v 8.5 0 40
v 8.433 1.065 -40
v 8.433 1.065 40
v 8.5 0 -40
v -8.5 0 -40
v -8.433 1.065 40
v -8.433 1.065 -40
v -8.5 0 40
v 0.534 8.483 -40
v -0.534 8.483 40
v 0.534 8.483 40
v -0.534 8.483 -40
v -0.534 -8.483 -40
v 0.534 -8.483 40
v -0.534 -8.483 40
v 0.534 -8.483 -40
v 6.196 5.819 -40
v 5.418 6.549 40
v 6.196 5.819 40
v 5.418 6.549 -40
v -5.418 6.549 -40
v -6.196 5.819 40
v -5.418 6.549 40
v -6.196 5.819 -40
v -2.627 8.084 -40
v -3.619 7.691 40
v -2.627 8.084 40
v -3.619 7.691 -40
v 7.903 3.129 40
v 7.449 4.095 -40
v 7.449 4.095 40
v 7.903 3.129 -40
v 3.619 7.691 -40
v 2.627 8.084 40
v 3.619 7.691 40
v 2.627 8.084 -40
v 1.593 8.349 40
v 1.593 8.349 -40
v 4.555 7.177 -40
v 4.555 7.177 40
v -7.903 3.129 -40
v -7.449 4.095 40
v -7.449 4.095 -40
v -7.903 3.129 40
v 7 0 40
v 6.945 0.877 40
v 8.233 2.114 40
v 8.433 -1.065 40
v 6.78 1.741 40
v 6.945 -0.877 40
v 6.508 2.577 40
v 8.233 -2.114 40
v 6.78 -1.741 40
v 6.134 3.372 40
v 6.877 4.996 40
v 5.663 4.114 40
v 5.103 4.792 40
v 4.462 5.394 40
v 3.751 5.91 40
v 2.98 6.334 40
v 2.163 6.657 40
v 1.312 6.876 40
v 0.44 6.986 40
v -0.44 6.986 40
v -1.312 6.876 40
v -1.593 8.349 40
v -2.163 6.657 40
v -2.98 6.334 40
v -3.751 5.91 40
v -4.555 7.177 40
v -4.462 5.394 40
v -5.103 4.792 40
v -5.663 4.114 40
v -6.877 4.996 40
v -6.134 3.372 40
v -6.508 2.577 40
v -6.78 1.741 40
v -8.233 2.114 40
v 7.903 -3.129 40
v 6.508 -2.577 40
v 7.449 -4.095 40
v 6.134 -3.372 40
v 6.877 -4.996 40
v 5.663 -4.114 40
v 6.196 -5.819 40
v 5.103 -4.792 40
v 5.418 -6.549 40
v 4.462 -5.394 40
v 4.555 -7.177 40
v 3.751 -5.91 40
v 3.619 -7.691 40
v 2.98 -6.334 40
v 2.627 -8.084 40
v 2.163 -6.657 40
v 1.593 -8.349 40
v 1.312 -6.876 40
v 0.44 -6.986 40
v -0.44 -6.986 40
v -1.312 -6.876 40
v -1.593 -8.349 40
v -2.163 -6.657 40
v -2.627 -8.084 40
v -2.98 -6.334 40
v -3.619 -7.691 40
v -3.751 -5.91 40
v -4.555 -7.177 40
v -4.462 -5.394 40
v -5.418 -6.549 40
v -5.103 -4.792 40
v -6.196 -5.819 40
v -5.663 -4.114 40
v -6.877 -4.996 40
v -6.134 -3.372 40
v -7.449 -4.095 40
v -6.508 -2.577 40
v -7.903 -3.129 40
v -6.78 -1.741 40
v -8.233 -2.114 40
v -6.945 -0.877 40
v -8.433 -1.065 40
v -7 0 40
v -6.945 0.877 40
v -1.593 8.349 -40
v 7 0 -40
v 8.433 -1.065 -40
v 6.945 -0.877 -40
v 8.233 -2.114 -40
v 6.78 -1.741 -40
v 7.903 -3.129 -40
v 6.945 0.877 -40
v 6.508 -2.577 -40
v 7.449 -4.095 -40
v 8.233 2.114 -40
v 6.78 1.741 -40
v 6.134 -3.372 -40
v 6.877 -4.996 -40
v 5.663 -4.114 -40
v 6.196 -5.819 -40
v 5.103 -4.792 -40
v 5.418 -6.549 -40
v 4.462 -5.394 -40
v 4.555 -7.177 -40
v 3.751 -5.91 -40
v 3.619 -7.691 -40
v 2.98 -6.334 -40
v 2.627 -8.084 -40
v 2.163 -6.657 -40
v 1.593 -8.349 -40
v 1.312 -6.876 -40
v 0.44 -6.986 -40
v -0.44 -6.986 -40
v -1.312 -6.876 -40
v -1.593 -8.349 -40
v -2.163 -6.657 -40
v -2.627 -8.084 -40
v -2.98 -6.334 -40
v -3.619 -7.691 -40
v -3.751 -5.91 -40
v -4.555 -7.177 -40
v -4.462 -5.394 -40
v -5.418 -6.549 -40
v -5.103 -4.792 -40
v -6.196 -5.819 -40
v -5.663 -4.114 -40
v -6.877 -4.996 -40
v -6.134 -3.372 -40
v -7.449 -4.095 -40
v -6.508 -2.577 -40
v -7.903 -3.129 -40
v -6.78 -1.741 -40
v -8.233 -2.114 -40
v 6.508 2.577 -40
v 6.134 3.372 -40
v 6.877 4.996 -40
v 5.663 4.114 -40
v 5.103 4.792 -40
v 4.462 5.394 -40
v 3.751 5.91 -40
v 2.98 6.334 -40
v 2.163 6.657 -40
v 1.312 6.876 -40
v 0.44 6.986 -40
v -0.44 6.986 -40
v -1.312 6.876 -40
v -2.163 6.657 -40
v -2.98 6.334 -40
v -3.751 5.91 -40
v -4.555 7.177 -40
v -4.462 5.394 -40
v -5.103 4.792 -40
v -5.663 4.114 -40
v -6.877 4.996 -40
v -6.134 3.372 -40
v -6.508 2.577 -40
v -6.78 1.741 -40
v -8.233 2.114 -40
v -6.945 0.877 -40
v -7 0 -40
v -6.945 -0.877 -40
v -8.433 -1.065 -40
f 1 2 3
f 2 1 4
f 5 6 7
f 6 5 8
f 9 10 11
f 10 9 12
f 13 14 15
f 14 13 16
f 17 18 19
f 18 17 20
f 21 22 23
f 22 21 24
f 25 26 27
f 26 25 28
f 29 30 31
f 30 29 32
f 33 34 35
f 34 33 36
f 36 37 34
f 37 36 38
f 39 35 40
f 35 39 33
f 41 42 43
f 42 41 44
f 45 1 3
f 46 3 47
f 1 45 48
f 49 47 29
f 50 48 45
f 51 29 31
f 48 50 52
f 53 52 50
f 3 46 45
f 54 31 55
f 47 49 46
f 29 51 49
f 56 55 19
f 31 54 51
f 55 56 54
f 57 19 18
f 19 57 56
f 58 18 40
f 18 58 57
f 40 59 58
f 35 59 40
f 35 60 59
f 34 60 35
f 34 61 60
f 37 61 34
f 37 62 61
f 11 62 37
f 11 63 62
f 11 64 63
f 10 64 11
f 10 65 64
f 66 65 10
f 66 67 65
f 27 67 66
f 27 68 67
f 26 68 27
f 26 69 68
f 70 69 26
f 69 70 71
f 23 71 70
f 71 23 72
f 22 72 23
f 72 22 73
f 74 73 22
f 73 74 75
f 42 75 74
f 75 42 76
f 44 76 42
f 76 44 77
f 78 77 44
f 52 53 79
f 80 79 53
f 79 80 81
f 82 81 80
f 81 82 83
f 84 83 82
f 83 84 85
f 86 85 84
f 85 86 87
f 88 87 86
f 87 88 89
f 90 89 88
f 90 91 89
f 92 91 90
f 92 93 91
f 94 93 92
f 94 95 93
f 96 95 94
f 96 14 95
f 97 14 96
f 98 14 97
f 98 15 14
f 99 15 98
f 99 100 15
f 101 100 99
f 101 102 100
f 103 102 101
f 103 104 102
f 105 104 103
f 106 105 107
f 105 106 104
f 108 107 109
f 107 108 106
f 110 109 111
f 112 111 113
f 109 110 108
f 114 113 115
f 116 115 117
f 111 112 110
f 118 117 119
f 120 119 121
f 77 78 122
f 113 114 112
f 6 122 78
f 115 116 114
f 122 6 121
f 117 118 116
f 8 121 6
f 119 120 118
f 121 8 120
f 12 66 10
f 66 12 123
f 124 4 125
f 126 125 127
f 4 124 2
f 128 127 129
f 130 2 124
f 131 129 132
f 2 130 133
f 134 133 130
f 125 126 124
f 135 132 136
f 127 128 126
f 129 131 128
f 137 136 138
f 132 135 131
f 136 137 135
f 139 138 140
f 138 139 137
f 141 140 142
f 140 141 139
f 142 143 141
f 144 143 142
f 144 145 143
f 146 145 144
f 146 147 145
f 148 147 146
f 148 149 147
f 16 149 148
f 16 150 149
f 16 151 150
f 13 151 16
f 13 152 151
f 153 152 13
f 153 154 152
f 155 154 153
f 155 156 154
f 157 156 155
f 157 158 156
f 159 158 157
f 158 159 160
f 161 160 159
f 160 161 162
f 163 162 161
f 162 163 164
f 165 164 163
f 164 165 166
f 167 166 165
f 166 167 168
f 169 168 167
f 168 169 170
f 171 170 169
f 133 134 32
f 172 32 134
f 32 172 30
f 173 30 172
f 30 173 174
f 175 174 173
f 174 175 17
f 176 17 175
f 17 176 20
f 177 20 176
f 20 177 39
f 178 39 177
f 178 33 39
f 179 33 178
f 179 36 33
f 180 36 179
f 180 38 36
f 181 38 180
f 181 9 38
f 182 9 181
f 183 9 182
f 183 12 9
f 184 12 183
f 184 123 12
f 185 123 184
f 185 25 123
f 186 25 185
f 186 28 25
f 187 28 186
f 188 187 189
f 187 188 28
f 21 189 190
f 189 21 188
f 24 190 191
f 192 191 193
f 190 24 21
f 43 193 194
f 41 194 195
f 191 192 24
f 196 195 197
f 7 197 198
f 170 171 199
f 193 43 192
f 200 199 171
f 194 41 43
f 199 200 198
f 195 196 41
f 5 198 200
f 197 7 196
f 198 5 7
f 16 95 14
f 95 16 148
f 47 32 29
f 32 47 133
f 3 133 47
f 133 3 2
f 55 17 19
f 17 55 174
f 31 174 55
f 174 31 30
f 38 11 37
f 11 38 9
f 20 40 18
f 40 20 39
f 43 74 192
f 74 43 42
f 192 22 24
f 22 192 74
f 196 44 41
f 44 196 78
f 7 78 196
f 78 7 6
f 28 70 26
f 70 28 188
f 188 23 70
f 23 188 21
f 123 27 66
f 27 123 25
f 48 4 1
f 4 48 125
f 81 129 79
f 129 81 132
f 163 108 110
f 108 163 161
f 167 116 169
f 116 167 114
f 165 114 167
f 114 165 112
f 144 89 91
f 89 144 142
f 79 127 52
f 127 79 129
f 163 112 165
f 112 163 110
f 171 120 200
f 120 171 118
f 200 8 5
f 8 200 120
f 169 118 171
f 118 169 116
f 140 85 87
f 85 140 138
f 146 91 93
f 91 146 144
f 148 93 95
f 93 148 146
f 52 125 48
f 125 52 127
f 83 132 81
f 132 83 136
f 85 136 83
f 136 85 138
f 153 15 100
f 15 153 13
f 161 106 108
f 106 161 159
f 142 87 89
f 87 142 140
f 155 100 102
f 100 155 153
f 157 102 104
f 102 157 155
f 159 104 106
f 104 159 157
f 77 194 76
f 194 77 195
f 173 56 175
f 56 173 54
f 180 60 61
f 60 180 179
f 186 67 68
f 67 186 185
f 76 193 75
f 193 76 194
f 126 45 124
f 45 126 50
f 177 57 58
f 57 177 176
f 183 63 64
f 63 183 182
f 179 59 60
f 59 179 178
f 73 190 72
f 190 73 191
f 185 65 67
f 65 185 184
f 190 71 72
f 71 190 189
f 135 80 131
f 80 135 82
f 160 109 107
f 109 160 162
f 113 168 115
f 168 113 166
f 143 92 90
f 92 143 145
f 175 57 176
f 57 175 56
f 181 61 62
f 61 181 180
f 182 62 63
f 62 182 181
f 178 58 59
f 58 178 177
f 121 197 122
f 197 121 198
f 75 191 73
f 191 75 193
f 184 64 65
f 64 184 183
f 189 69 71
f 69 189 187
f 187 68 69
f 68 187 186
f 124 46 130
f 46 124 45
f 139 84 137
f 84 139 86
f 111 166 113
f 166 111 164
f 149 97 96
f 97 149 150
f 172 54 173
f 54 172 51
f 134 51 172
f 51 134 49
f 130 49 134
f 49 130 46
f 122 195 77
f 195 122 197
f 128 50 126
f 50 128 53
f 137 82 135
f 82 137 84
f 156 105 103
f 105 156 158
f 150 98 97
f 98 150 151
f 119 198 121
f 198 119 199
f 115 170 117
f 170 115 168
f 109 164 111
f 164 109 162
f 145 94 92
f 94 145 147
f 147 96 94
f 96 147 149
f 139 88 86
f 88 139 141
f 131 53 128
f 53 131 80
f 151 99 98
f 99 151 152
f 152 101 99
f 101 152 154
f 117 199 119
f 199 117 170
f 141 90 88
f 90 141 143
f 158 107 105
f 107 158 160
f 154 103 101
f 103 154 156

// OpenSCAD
$fn = 50;


difference() {
	union() {
		translate(v = [0, 0, -40.0000000000]) {
			cylinder(h = 80, r = 8.5000000000);
		}
	}
	union() {
		translate(v = [0, 0, -100.0000000000]) {
			cylinder(h = 200, r = 7);
		}
	}
}
